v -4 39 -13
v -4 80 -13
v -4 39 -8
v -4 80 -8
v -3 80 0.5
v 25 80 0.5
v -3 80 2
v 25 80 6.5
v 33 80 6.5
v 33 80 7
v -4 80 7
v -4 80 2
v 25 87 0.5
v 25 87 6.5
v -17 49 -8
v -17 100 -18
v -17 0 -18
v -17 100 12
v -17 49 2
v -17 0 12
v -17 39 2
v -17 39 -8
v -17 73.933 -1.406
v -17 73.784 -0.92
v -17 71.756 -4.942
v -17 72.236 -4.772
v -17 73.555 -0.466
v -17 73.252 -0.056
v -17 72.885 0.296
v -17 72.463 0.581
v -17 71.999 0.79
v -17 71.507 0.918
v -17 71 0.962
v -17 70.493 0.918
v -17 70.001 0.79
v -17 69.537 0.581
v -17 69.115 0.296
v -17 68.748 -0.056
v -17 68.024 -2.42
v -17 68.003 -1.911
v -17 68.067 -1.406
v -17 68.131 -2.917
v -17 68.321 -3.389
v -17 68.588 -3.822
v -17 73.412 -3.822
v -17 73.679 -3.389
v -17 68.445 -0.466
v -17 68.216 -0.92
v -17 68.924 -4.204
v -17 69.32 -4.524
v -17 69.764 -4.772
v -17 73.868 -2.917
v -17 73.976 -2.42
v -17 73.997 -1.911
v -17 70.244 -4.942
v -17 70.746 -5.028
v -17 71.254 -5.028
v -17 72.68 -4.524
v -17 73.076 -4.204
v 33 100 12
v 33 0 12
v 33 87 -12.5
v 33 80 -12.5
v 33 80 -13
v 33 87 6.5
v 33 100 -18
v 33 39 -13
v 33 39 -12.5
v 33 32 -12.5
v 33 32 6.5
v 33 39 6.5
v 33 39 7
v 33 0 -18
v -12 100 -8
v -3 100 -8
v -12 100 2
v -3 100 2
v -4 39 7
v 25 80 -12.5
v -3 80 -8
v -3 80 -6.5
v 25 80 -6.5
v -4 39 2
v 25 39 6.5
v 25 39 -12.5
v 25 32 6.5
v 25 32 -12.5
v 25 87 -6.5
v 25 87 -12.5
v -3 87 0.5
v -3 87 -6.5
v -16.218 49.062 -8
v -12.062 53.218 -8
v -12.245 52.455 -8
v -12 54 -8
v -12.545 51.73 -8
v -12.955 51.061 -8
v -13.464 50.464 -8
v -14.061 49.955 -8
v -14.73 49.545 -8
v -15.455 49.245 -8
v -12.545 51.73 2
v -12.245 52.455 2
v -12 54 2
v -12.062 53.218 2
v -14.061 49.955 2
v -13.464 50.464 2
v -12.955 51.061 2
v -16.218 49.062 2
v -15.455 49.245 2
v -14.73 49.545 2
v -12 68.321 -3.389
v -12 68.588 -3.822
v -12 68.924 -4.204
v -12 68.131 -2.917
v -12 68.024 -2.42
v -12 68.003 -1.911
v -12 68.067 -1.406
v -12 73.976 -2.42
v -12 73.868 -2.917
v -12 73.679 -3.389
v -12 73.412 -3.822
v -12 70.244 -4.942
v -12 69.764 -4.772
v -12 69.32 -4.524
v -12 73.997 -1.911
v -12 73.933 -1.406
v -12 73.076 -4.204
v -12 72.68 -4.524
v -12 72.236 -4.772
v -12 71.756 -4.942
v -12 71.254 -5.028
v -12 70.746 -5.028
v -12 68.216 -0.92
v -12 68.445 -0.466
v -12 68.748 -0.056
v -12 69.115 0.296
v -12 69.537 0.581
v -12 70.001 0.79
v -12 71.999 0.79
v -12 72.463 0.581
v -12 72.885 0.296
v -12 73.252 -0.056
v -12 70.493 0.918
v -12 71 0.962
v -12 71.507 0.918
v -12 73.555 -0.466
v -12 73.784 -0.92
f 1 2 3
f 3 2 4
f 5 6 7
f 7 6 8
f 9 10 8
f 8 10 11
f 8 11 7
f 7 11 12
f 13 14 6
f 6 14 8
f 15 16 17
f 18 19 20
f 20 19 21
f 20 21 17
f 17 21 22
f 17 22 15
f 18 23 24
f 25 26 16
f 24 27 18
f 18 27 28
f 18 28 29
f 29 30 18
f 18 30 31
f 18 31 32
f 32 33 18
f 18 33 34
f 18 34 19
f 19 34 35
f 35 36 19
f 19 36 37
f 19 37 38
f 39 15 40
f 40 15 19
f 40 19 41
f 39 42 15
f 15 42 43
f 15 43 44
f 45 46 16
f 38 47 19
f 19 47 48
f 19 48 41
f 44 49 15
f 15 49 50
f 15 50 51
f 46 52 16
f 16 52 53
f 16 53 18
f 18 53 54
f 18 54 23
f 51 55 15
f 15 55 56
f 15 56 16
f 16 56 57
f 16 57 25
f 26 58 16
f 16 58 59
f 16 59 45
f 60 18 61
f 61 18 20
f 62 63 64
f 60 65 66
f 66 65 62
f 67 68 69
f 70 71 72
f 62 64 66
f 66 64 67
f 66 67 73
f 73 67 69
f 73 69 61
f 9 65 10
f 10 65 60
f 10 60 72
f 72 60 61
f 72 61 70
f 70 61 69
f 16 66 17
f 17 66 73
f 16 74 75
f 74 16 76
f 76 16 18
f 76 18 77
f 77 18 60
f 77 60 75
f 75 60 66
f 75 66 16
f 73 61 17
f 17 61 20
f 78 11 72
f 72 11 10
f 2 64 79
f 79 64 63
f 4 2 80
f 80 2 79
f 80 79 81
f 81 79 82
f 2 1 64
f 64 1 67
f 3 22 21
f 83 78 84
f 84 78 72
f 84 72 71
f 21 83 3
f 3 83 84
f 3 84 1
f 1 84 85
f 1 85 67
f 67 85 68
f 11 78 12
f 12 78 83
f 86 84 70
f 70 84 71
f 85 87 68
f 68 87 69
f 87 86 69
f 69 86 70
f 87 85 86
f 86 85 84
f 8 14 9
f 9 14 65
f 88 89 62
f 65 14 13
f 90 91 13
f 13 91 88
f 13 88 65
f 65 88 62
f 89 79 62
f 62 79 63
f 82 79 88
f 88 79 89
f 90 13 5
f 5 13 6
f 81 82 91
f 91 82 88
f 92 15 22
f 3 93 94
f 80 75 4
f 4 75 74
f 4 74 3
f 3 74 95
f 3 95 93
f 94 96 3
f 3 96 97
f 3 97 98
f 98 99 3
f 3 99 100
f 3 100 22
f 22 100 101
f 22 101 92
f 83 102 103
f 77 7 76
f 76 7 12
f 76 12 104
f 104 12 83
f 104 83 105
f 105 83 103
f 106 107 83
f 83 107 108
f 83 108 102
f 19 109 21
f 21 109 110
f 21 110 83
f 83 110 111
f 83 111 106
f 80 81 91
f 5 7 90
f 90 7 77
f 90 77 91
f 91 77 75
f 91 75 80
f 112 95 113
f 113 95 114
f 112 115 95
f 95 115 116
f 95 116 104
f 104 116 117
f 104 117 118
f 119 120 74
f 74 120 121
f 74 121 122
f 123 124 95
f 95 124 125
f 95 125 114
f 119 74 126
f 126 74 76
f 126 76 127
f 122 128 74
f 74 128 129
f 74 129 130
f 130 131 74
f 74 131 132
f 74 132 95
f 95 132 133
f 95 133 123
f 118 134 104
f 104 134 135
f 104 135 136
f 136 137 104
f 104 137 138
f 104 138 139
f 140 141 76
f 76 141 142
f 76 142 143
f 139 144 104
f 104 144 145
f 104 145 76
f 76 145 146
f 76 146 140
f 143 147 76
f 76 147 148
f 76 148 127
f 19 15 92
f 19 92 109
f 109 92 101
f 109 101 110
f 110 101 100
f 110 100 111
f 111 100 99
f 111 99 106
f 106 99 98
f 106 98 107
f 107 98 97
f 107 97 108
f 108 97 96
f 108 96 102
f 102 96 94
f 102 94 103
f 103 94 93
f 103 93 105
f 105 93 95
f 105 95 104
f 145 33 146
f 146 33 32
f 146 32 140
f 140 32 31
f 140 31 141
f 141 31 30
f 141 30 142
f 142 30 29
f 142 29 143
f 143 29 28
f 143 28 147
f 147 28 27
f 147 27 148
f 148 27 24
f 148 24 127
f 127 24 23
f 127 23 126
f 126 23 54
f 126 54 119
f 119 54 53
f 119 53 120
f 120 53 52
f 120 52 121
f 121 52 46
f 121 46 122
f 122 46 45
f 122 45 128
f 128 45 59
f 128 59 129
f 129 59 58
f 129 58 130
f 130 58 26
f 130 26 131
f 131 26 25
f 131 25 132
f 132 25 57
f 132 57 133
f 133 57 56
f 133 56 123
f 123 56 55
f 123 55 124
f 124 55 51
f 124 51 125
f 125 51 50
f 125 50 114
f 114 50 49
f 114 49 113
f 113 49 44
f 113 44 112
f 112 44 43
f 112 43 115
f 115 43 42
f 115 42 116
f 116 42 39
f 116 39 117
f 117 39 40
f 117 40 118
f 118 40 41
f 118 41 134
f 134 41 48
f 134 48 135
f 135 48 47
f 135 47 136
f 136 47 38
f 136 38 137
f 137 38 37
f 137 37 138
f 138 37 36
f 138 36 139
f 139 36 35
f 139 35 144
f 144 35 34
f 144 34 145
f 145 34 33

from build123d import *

# Parameters (mm, degrees)
SKETCH_3_W          = 50
SKETCH_3_H          = 30
EXTRUDE_1_DEPTH     = 100
SKETCH_4_W          = 20
SKETCH_4_H          = 41
CUT_EXTRUDE_1_DEPTH = 37
SKETCH_5_W          = 19
SKETCH_5_H          = 7
CUT_EXTRUDE_2_DEPTH = 8
SKETCH_6_W          = 7
SKETCH_6_H          = 7
CUT_EXTRUDE_3_DEPTH = 29
SKETCH_8_W          = 9
SKETCH_8_H          = 10
CUT_EXTRUDE_4_DEPTH = 61
SKETCH_9_W          = 10
SKETCH_9_H          = 10
CUT_EXTRUDE_5_DEPTH = 5
FILLET_1_R          = 5
SKETCH_10_R         = 3
CUT_EXTRUDE_6_DEPTH = 5


with BuildPart() as part:
    # 草圖3 → 填料-伸長1 (new body)
    with BuildSketch(Plane(origin=(0, 0, 0), x_dir=(1, 0, 0), z_dir=(0, 1, 0))):
        with Locations((8, 3)):
            Rectangle(SKETCH_3_W, SKETCH_3_H)
    extrude(amount=EXTRUDE_1_DEPTH)

    # 草圖4 → 除料-伸長1 (cut)
    with BuildSketch(Plane(origin=(33, 0, 0), x_dir=(0, 0, -1), z_dir=(1, 0, 0))):
        with Locations((3, 59.5)):
            Rectangle(SKETCH_4_W, SKETCH_4_H)
    extrude(amount=-CUT_EXTRUDE_1_DEPTH, mode=Mode.SUBTRACT)

    # 草圖5 → 除料-伸長2 (cut)
    with BuildSketch(Plane(origin=(33, 0, 0), x_dir=(0, 0, -1), z_dir=(1, 0, 0))):
        with Locations((3, 83.5)):
            Rectangle(SKETCH_5_W, SKETCH_5_H)
        with Locations((3, 35.5)):
            Rectangle(SKETCH_5_W, SKETCH_5_H)
    extrude(amount=-CUT_EXTRUDE_2_DEPTH, mode=Mode.SUBTRACT)

    # 草圖6 → 除料-伸長3 (cut)
    with BuildSketch(Plane(origin=(25, 0, 0), x_dir=(0, 0, -1), z_dir=(1, 0, 0))):
        with Locations((3, 83.5)):
            Rectangle(SKETCH_6_W, SKETCH_6_H)
    extrude(amount=-CUT_EXTRUDE_3_DEPTH, mode=Mode.SUBTRACT)

    # 草圖8 → 除料-伸長4 (cut)
    with BuildSketch(Plane(origin=(0, 100, 0), x_dir=(1, 0, 0), z_dir=(0, 1, 0))):
        with Locations((-7.5, 3)):
            Rectangle(SKETCH_8_W, SKETCH_8_H)
    extrude(amount=-CUT_EXTRUDE_4_DEPTH, mode=Mode.SUBTRACT)

    # 草圖9 → 除料-伸長5 (cut)
    with BuildSketch(Plane.ZY.offset(17)):
        with Locations((-3, 44)):
            Rectangle(SKETCH_9_W, SKETCH_9_H)
    extrude(amount=-CUT_EXTRUDE_5_DEPTH, mode=Mode.SUBTRACT)

    # 圓角1
    fillet_1_edges = [part.edges().sort_by_distance(p)[0] for p in [
        (-12, 49, -3),
    ]]
    fillet(fillet_1_edges, radius=FILLET_1_R - 0.0001)  # a hair under: the kernel refuses the full size

    # 草圖10 → 除料-伸長6 (cut)
    with BuildSketch(Plane.ZY.offset(17)):
        with Locations((-2.038456717, 71)):
            Circle(SKETCH_10_R)
    extrude(amount=-CUT_EXTRUDE_6_DEPTH, mode=Mode.SUBTRACT)


solid = part.part
